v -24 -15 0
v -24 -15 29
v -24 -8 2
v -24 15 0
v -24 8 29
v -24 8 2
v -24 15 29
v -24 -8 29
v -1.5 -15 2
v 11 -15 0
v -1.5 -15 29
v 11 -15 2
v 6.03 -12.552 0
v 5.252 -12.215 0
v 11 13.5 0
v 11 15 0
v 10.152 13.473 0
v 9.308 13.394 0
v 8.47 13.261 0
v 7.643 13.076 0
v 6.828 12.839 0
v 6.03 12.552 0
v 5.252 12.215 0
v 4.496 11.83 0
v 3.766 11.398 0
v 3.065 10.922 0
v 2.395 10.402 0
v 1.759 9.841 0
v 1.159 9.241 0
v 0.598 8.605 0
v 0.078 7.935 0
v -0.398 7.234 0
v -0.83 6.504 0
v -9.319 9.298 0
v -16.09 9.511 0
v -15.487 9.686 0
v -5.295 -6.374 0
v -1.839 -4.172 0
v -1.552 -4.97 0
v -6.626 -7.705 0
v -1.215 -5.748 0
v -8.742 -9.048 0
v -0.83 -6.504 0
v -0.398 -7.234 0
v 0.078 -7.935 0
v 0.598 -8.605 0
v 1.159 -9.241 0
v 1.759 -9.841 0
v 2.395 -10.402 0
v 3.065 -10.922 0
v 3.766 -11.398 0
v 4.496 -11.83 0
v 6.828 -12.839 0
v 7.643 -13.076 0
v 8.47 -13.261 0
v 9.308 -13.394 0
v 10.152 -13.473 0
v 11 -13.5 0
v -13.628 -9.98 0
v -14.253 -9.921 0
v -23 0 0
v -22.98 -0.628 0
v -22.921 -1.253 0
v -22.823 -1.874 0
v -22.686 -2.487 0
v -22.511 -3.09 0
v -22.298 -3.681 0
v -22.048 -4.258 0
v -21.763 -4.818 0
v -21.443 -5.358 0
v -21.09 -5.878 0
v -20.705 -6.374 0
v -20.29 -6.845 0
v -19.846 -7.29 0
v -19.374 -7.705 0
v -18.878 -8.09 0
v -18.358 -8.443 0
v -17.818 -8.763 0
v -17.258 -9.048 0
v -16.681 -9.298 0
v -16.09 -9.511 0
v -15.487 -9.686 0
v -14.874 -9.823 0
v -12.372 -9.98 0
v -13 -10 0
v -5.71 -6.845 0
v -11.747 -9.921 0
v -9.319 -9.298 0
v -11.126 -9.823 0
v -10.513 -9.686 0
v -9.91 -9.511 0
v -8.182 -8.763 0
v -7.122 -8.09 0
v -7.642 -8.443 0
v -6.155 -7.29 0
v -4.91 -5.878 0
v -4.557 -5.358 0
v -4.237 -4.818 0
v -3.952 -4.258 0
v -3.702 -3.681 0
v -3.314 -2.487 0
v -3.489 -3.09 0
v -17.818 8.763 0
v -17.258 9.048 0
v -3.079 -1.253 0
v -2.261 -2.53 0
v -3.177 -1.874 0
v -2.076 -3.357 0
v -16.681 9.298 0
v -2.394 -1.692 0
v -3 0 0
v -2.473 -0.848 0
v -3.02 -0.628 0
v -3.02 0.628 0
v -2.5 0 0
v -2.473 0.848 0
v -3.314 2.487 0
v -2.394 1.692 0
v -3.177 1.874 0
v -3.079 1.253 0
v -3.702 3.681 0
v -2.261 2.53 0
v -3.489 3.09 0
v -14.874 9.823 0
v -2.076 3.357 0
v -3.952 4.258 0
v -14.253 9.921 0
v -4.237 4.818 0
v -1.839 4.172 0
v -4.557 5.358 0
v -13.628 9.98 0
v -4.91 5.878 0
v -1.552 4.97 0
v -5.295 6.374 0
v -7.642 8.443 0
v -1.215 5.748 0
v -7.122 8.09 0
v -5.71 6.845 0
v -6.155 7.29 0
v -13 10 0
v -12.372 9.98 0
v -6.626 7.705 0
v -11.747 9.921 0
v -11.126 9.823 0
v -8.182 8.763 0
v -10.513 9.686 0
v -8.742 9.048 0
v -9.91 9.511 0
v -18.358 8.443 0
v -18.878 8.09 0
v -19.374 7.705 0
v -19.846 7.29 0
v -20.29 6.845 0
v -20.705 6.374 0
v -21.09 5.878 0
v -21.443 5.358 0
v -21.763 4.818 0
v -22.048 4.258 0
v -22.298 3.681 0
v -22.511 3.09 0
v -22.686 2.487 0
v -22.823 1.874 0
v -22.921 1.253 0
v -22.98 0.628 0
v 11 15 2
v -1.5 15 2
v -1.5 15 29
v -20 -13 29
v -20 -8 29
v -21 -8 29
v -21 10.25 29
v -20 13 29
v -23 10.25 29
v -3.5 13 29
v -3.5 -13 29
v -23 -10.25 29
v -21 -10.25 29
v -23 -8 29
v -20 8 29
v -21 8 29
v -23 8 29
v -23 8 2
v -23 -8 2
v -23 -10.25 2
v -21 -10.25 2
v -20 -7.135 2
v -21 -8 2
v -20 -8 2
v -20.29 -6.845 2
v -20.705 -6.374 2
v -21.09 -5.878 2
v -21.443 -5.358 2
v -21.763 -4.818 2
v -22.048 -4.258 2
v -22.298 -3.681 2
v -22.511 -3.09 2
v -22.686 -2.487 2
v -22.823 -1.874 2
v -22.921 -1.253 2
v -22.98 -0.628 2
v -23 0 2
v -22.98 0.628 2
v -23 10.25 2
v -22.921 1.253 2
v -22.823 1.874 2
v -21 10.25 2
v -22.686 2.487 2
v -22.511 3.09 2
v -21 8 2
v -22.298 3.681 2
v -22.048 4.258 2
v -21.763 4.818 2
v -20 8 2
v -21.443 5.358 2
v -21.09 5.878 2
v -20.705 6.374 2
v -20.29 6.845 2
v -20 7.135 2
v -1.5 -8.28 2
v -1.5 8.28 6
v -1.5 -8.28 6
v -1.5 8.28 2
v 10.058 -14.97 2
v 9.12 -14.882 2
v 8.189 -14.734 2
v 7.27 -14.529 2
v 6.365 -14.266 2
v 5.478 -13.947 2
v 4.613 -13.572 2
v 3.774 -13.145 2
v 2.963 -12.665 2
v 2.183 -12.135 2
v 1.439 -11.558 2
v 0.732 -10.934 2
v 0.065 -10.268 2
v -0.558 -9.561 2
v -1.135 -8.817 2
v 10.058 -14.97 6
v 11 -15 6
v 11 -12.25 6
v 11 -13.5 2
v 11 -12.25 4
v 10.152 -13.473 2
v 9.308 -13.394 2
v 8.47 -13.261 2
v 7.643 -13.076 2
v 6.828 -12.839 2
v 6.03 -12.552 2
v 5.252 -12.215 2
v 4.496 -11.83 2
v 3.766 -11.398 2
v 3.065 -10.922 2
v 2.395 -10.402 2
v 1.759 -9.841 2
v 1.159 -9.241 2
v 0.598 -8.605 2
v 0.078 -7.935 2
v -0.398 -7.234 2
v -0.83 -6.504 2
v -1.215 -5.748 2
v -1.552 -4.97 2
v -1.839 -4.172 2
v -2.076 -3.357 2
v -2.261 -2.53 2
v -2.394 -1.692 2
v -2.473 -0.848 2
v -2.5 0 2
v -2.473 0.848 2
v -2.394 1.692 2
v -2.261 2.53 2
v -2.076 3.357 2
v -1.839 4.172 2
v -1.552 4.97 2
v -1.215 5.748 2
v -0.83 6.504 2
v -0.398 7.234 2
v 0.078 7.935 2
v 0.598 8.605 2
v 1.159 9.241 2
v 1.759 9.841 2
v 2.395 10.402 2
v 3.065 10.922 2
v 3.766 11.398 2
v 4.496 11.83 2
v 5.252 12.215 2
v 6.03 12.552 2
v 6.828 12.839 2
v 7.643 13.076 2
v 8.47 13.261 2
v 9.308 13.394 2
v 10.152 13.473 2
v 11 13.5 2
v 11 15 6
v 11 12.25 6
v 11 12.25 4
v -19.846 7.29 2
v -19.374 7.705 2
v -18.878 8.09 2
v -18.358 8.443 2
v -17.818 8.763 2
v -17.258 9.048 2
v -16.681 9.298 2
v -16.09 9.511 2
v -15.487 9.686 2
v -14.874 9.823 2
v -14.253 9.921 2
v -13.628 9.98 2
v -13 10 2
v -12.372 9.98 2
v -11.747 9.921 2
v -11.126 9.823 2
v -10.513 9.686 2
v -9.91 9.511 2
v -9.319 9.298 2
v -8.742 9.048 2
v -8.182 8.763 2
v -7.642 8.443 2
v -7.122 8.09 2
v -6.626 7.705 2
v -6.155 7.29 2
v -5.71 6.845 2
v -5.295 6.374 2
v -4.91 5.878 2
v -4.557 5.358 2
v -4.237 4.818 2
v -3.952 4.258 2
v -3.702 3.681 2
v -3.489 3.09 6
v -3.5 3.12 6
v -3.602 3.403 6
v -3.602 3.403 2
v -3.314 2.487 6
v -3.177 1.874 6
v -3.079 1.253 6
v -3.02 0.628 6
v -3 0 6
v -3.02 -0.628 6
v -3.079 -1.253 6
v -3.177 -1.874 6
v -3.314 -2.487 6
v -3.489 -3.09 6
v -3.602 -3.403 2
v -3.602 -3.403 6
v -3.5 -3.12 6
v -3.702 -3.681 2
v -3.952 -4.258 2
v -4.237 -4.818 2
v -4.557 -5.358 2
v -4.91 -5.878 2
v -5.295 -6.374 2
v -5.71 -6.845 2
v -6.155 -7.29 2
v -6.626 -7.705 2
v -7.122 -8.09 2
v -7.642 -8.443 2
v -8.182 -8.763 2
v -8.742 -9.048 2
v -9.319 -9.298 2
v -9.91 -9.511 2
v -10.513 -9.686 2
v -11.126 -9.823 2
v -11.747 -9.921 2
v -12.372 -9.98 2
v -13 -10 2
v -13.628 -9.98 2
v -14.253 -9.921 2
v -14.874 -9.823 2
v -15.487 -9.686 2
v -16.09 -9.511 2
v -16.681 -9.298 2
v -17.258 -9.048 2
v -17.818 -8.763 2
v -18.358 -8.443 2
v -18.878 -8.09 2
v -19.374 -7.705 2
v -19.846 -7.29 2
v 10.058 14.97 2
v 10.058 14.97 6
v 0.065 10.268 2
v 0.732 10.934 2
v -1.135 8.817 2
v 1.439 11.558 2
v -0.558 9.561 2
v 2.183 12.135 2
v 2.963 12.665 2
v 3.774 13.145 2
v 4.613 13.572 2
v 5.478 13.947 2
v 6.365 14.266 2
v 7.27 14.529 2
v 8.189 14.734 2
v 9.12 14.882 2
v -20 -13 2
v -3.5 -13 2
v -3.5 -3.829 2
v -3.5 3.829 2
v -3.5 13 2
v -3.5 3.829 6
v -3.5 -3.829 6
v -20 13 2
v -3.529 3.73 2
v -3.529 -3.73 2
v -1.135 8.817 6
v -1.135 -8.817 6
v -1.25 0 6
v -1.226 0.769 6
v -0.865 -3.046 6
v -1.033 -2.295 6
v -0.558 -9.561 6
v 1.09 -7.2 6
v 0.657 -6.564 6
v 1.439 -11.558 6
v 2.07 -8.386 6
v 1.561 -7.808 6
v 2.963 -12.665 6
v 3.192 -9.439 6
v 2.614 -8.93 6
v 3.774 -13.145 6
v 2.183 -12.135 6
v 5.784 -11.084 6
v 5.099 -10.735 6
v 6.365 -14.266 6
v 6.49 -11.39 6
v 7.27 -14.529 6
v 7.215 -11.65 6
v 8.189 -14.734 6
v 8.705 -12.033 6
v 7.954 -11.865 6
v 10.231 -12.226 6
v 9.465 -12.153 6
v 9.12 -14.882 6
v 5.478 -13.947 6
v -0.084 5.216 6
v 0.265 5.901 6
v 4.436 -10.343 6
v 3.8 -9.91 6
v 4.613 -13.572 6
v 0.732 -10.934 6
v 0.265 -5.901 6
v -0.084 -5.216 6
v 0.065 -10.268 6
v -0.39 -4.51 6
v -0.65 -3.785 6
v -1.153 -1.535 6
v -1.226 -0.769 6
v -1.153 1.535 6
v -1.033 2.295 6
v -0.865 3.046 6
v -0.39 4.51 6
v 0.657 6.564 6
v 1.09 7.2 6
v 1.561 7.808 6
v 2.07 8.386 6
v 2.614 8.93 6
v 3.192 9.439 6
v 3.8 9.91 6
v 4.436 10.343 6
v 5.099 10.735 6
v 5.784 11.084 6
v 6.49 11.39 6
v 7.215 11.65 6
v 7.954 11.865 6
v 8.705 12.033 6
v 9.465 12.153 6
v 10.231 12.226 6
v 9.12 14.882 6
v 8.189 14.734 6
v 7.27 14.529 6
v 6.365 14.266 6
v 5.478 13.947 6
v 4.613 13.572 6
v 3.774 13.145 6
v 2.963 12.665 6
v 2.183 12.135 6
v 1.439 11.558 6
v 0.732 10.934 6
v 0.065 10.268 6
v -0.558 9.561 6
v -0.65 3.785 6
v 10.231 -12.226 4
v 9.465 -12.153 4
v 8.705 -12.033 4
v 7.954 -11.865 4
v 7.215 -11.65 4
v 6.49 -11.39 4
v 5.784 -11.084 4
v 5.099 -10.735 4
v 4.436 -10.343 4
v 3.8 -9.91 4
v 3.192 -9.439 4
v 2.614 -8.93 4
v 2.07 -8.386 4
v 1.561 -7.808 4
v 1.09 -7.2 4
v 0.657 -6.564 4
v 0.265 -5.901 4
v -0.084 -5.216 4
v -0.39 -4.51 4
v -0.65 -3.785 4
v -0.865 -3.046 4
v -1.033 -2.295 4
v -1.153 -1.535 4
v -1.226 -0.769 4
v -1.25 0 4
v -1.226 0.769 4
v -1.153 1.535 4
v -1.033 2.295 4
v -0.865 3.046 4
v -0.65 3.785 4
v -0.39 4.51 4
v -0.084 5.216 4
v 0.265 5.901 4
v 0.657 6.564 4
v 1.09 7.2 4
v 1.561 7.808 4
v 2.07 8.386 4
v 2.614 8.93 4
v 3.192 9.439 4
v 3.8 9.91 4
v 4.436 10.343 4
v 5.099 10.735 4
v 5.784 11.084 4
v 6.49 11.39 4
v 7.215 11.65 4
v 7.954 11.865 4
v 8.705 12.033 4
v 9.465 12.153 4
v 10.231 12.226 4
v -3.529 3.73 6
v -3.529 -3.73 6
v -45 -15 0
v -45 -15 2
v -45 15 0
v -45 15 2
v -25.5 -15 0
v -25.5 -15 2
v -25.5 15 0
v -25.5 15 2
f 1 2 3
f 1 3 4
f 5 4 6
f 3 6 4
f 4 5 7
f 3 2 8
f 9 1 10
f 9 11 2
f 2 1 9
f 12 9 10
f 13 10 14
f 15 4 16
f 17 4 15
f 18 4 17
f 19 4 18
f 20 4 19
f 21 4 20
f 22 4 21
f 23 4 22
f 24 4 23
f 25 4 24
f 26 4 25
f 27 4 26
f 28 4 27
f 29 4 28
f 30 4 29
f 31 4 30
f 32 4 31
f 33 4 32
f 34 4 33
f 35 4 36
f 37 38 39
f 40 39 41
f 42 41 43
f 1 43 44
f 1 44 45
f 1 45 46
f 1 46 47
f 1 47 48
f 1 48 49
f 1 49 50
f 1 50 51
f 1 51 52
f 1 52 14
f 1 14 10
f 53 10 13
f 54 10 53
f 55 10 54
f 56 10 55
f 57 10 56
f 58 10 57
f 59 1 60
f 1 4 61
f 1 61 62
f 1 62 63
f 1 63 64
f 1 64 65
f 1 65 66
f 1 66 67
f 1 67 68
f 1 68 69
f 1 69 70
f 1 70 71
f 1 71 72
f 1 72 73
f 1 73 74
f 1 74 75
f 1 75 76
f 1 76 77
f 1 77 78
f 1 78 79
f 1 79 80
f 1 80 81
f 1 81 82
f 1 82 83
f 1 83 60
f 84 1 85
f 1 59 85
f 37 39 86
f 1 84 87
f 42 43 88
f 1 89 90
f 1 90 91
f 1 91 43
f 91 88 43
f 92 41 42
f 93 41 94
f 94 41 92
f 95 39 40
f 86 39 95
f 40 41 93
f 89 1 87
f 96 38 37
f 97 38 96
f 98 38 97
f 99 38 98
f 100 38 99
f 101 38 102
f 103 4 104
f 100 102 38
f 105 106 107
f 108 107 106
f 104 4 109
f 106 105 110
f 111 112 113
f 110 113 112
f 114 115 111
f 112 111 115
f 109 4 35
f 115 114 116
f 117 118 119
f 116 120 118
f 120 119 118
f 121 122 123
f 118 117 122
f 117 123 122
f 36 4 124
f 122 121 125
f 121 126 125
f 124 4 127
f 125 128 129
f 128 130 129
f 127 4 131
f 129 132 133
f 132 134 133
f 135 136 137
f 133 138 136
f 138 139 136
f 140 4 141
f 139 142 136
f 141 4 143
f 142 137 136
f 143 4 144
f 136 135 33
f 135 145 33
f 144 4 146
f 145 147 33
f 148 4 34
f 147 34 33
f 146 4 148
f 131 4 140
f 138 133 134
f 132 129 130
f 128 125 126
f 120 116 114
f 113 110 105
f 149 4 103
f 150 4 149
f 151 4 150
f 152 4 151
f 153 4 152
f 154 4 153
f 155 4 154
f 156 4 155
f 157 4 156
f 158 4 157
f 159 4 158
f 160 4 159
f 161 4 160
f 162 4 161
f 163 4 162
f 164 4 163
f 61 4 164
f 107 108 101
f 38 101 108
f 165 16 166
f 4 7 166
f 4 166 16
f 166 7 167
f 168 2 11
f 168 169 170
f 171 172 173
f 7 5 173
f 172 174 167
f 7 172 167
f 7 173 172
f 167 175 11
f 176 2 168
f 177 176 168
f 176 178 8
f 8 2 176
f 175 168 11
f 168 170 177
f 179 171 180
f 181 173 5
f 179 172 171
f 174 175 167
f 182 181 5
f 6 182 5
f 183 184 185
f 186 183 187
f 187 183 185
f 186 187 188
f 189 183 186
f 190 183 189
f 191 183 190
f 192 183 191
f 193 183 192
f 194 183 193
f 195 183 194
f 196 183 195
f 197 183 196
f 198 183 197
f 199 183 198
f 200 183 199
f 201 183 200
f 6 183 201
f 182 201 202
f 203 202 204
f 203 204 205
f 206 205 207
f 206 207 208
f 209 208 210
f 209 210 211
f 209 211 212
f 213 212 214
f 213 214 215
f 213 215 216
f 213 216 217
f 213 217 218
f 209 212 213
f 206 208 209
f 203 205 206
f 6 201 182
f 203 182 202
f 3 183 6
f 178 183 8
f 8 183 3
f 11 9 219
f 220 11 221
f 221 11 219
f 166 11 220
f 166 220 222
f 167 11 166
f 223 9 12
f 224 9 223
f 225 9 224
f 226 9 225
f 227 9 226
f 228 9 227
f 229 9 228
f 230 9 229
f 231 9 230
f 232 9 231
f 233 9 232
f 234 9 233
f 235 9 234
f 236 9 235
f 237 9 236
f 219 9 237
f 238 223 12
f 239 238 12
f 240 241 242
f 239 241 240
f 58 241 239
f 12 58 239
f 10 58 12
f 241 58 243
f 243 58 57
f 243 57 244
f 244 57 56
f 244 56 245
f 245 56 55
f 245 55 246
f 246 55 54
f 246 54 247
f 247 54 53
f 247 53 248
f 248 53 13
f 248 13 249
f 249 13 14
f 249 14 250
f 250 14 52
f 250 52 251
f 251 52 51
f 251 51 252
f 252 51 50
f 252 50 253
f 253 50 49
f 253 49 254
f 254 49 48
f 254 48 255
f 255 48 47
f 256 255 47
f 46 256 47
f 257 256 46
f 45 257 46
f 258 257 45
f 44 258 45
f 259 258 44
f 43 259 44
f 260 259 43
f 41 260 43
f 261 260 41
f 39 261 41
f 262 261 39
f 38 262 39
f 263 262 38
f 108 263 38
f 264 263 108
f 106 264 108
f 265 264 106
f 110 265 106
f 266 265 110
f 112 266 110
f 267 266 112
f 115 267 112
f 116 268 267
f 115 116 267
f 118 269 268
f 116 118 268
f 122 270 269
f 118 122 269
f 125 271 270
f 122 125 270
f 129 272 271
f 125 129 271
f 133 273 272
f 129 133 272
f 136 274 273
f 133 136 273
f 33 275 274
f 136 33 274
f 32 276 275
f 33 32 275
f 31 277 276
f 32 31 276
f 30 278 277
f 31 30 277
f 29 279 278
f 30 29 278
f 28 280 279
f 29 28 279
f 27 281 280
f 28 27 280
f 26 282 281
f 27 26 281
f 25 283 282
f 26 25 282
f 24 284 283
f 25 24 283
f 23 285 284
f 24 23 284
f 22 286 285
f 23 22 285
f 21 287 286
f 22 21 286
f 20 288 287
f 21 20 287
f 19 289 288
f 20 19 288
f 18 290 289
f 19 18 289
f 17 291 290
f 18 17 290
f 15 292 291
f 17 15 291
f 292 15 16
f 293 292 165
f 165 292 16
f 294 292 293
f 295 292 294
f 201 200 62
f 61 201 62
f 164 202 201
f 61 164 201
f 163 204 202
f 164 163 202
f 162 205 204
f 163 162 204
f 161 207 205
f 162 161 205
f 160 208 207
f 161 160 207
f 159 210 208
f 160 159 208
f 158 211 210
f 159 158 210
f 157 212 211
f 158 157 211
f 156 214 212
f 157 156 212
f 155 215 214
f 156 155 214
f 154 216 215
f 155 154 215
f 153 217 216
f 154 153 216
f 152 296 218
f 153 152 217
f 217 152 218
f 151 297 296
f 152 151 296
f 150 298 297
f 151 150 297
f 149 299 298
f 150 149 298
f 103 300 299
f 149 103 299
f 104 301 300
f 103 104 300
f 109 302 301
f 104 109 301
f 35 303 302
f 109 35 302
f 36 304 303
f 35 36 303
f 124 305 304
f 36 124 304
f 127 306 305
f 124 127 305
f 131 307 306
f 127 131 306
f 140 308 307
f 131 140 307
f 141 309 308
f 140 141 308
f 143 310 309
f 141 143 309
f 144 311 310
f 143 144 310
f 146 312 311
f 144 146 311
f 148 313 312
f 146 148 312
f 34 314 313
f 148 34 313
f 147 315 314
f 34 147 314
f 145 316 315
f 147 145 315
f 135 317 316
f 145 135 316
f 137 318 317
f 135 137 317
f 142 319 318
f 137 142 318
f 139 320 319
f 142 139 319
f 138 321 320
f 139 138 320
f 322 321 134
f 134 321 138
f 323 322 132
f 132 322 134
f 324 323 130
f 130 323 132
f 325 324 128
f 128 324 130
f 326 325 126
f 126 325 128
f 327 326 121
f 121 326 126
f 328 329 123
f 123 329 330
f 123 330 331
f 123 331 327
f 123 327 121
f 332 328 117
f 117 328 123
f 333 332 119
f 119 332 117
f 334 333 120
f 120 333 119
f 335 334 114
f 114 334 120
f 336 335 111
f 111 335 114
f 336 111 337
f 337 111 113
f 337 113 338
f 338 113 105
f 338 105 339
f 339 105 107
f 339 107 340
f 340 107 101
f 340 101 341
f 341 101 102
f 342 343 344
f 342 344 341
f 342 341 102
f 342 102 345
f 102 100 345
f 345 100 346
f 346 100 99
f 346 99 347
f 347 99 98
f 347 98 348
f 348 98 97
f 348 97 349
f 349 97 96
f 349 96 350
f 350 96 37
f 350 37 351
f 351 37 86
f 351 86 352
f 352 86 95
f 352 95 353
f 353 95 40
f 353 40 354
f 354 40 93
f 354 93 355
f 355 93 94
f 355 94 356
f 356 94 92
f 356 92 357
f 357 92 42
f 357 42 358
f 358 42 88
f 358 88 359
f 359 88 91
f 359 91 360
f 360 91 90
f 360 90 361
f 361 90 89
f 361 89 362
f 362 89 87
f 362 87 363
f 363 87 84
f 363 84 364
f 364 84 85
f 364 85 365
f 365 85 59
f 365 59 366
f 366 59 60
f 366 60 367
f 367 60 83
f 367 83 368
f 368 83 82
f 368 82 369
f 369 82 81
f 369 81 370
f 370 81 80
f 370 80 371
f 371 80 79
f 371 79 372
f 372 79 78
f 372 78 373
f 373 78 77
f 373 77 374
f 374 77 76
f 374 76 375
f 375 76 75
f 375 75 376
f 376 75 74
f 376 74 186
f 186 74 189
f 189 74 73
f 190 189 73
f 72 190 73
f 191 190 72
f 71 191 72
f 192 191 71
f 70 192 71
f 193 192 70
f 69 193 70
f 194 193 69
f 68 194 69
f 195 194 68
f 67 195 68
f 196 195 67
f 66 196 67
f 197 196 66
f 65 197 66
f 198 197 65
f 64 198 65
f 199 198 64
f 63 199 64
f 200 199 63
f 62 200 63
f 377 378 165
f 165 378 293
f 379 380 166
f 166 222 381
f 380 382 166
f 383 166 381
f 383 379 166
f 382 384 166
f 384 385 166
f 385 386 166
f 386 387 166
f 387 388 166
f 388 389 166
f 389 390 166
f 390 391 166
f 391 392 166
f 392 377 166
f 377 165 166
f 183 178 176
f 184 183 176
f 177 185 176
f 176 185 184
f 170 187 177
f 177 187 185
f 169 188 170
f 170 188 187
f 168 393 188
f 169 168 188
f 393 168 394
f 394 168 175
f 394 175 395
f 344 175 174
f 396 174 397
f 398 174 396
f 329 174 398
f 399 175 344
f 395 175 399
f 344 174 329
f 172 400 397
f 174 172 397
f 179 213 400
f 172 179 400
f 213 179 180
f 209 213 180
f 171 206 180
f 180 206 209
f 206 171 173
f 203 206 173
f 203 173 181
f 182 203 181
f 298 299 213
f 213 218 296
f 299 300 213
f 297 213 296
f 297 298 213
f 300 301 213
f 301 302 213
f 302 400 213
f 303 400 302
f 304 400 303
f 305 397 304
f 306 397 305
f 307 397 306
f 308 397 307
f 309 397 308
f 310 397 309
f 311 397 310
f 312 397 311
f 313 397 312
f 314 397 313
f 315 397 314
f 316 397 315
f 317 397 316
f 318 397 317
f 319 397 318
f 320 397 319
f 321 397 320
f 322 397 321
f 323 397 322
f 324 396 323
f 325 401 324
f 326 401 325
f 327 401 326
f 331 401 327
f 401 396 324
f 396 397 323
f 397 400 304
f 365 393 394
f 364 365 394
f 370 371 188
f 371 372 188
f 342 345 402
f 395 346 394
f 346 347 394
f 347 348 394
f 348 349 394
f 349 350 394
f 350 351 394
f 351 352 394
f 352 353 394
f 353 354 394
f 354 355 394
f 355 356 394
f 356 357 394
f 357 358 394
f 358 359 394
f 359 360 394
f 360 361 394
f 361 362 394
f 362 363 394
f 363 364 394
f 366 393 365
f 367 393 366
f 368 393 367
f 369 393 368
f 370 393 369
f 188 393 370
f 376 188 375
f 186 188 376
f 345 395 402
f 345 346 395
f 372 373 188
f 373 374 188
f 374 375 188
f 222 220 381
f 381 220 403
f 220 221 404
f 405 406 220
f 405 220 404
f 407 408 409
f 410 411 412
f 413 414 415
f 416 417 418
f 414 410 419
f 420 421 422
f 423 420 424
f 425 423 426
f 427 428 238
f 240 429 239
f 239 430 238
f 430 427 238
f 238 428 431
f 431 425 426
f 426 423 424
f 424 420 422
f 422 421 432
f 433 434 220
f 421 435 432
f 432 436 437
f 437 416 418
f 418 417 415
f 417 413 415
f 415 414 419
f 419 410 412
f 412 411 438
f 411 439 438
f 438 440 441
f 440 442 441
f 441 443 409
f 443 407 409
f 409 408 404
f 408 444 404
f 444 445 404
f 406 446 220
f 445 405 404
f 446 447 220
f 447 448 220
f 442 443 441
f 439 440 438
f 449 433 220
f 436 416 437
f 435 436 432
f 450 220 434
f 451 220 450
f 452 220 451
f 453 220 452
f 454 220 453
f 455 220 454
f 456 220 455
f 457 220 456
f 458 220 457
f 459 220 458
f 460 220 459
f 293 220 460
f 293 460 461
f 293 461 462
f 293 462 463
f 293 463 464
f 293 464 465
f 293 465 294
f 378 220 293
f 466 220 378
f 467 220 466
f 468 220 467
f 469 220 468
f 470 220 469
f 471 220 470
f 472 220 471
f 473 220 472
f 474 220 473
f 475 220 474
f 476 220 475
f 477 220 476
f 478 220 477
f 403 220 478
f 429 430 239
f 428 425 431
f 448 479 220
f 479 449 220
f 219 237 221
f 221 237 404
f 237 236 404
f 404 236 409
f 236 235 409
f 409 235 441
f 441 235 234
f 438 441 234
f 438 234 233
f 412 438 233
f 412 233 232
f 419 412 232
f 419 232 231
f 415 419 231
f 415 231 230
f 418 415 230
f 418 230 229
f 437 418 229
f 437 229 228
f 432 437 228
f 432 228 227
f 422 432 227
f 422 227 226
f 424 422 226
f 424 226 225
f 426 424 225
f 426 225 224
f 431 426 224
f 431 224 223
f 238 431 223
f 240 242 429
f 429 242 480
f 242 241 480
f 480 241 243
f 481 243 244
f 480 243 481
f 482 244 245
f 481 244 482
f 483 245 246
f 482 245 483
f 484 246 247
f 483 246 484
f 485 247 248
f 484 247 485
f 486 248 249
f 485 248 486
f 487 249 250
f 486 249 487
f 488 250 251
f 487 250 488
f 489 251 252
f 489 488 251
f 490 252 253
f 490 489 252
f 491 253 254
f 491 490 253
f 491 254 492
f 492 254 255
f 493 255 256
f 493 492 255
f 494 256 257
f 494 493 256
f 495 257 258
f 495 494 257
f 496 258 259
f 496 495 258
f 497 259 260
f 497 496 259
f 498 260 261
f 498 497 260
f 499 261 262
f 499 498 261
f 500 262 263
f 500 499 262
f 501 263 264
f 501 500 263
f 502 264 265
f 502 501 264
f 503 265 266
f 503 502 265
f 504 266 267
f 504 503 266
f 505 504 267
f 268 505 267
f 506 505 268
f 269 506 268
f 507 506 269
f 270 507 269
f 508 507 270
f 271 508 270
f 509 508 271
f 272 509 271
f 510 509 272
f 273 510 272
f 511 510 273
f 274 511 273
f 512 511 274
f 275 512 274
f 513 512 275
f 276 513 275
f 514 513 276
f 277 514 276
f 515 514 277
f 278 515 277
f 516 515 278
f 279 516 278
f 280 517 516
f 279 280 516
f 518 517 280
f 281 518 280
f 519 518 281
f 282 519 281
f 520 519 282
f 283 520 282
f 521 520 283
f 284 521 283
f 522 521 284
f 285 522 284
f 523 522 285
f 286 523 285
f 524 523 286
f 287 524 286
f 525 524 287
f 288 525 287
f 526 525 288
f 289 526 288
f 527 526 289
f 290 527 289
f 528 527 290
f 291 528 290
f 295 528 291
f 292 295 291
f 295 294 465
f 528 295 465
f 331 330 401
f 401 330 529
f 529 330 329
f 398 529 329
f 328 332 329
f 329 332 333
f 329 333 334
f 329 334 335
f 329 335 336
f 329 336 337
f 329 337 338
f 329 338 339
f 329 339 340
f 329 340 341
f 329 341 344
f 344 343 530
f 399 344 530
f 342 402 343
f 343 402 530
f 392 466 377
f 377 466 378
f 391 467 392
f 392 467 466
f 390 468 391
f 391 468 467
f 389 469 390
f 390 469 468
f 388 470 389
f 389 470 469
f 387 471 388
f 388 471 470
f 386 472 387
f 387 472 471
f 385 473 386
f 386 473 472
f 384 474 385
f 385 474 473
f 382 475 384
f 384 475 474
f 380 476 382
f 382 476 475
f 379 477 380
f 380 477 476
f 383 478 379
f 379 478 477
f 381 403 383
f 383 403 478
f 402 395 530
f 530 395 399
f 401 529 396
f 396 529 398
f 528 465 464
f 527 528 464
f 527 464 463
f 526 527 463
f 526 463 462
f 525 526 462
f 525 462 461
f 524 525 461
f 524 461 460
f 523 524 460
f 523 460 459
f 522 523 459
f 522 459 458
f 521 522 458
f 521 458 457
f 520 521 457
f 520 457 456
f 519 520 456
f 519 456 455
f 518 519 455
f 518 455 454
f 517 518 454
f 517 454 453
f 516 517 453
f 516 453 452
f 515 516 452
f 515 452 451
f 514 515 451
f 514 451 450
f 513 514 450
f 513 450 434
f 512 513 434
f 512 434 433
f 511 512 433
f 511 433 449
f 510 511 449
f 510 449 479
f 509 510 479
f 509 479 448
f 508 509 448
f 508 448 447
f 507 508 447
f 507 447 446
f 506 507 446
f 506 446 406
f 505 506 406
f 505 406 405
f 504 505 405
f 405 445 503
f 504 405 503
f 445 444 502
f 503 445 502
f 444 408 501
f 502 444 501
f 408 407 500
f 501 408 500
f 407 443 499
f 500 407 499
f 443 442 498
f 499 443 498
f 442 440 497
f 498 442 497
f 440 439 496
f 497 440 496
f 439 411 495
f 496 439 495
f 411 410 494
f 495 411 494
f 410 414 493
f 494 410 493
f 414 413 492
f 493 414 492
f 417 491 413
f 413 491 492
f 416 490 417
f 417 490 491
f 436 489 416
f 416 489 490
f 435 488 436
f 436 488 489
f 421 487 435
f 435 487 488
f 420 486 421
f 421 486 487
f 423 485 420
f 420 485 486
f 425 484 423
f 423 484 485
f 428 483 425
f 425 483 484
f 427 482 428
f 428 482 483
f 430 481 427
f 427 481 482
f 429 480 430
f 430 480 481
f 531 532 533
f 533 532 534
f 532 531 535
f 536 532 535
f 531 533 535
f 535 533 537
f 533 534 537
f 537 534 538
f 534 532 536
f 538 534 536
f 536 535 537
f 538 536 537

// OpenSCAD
myfn = 100;

render(convexity = 6) {
  union() {
    difference() {
      union() {
        //base
        translate([-24, -15, 0])
          cube([37, 30, 2]);
        // flange body
        translate([11,0,0])
          cylinder(h = 6, d=30, $fn=myfn);
        // front wall
        translate([-24, -15, 2])
          cube([4, 30, 27]);
        // side wall 1
        translate([-20, 13, 2])
          cube([17, 2, 27]);
        // side wall 2
        translate([-20, -15, 2])
          cube([17, 2, 27]);
        // back wall
        translate([-3.5, -15, 2])
          cube([2, 30, 27]);
        // translate to printing position
        translate([-24, 0, -29])
          // lid
          translate([-21, -15, 29])
            cube([19.5, 30, 2]);
      }
      union () {
        // bottom outlet hole
        translate([11,0,0])
          cylinder(h = 2, d=27, $fn=myfn);
        // outlet transition hole
        translate([11,0,2])
          cylinder(h = 2, d1=27, d2=24.5, $fn=myfn);
        //outlet top hole
        translate([11,0,4])
          cylinder(h = 2, d=24.5, $fn=myfn);
        // float switch hole
        translate([-13,0,0])
          cylinder(h =6, d=20, $fn=myfn);
        // semi-circle outlet hole
        translate([11,-15,0])
          cube([30,30,6]);
        // power socket slot shape
        translate([-23, -10.25, 2])
          cube([2, 20.5, 27]);
        // power socket gap
        translate([-24, -8, 2])
          cube([4, 16, 27]);
      }
    }
  }
}
